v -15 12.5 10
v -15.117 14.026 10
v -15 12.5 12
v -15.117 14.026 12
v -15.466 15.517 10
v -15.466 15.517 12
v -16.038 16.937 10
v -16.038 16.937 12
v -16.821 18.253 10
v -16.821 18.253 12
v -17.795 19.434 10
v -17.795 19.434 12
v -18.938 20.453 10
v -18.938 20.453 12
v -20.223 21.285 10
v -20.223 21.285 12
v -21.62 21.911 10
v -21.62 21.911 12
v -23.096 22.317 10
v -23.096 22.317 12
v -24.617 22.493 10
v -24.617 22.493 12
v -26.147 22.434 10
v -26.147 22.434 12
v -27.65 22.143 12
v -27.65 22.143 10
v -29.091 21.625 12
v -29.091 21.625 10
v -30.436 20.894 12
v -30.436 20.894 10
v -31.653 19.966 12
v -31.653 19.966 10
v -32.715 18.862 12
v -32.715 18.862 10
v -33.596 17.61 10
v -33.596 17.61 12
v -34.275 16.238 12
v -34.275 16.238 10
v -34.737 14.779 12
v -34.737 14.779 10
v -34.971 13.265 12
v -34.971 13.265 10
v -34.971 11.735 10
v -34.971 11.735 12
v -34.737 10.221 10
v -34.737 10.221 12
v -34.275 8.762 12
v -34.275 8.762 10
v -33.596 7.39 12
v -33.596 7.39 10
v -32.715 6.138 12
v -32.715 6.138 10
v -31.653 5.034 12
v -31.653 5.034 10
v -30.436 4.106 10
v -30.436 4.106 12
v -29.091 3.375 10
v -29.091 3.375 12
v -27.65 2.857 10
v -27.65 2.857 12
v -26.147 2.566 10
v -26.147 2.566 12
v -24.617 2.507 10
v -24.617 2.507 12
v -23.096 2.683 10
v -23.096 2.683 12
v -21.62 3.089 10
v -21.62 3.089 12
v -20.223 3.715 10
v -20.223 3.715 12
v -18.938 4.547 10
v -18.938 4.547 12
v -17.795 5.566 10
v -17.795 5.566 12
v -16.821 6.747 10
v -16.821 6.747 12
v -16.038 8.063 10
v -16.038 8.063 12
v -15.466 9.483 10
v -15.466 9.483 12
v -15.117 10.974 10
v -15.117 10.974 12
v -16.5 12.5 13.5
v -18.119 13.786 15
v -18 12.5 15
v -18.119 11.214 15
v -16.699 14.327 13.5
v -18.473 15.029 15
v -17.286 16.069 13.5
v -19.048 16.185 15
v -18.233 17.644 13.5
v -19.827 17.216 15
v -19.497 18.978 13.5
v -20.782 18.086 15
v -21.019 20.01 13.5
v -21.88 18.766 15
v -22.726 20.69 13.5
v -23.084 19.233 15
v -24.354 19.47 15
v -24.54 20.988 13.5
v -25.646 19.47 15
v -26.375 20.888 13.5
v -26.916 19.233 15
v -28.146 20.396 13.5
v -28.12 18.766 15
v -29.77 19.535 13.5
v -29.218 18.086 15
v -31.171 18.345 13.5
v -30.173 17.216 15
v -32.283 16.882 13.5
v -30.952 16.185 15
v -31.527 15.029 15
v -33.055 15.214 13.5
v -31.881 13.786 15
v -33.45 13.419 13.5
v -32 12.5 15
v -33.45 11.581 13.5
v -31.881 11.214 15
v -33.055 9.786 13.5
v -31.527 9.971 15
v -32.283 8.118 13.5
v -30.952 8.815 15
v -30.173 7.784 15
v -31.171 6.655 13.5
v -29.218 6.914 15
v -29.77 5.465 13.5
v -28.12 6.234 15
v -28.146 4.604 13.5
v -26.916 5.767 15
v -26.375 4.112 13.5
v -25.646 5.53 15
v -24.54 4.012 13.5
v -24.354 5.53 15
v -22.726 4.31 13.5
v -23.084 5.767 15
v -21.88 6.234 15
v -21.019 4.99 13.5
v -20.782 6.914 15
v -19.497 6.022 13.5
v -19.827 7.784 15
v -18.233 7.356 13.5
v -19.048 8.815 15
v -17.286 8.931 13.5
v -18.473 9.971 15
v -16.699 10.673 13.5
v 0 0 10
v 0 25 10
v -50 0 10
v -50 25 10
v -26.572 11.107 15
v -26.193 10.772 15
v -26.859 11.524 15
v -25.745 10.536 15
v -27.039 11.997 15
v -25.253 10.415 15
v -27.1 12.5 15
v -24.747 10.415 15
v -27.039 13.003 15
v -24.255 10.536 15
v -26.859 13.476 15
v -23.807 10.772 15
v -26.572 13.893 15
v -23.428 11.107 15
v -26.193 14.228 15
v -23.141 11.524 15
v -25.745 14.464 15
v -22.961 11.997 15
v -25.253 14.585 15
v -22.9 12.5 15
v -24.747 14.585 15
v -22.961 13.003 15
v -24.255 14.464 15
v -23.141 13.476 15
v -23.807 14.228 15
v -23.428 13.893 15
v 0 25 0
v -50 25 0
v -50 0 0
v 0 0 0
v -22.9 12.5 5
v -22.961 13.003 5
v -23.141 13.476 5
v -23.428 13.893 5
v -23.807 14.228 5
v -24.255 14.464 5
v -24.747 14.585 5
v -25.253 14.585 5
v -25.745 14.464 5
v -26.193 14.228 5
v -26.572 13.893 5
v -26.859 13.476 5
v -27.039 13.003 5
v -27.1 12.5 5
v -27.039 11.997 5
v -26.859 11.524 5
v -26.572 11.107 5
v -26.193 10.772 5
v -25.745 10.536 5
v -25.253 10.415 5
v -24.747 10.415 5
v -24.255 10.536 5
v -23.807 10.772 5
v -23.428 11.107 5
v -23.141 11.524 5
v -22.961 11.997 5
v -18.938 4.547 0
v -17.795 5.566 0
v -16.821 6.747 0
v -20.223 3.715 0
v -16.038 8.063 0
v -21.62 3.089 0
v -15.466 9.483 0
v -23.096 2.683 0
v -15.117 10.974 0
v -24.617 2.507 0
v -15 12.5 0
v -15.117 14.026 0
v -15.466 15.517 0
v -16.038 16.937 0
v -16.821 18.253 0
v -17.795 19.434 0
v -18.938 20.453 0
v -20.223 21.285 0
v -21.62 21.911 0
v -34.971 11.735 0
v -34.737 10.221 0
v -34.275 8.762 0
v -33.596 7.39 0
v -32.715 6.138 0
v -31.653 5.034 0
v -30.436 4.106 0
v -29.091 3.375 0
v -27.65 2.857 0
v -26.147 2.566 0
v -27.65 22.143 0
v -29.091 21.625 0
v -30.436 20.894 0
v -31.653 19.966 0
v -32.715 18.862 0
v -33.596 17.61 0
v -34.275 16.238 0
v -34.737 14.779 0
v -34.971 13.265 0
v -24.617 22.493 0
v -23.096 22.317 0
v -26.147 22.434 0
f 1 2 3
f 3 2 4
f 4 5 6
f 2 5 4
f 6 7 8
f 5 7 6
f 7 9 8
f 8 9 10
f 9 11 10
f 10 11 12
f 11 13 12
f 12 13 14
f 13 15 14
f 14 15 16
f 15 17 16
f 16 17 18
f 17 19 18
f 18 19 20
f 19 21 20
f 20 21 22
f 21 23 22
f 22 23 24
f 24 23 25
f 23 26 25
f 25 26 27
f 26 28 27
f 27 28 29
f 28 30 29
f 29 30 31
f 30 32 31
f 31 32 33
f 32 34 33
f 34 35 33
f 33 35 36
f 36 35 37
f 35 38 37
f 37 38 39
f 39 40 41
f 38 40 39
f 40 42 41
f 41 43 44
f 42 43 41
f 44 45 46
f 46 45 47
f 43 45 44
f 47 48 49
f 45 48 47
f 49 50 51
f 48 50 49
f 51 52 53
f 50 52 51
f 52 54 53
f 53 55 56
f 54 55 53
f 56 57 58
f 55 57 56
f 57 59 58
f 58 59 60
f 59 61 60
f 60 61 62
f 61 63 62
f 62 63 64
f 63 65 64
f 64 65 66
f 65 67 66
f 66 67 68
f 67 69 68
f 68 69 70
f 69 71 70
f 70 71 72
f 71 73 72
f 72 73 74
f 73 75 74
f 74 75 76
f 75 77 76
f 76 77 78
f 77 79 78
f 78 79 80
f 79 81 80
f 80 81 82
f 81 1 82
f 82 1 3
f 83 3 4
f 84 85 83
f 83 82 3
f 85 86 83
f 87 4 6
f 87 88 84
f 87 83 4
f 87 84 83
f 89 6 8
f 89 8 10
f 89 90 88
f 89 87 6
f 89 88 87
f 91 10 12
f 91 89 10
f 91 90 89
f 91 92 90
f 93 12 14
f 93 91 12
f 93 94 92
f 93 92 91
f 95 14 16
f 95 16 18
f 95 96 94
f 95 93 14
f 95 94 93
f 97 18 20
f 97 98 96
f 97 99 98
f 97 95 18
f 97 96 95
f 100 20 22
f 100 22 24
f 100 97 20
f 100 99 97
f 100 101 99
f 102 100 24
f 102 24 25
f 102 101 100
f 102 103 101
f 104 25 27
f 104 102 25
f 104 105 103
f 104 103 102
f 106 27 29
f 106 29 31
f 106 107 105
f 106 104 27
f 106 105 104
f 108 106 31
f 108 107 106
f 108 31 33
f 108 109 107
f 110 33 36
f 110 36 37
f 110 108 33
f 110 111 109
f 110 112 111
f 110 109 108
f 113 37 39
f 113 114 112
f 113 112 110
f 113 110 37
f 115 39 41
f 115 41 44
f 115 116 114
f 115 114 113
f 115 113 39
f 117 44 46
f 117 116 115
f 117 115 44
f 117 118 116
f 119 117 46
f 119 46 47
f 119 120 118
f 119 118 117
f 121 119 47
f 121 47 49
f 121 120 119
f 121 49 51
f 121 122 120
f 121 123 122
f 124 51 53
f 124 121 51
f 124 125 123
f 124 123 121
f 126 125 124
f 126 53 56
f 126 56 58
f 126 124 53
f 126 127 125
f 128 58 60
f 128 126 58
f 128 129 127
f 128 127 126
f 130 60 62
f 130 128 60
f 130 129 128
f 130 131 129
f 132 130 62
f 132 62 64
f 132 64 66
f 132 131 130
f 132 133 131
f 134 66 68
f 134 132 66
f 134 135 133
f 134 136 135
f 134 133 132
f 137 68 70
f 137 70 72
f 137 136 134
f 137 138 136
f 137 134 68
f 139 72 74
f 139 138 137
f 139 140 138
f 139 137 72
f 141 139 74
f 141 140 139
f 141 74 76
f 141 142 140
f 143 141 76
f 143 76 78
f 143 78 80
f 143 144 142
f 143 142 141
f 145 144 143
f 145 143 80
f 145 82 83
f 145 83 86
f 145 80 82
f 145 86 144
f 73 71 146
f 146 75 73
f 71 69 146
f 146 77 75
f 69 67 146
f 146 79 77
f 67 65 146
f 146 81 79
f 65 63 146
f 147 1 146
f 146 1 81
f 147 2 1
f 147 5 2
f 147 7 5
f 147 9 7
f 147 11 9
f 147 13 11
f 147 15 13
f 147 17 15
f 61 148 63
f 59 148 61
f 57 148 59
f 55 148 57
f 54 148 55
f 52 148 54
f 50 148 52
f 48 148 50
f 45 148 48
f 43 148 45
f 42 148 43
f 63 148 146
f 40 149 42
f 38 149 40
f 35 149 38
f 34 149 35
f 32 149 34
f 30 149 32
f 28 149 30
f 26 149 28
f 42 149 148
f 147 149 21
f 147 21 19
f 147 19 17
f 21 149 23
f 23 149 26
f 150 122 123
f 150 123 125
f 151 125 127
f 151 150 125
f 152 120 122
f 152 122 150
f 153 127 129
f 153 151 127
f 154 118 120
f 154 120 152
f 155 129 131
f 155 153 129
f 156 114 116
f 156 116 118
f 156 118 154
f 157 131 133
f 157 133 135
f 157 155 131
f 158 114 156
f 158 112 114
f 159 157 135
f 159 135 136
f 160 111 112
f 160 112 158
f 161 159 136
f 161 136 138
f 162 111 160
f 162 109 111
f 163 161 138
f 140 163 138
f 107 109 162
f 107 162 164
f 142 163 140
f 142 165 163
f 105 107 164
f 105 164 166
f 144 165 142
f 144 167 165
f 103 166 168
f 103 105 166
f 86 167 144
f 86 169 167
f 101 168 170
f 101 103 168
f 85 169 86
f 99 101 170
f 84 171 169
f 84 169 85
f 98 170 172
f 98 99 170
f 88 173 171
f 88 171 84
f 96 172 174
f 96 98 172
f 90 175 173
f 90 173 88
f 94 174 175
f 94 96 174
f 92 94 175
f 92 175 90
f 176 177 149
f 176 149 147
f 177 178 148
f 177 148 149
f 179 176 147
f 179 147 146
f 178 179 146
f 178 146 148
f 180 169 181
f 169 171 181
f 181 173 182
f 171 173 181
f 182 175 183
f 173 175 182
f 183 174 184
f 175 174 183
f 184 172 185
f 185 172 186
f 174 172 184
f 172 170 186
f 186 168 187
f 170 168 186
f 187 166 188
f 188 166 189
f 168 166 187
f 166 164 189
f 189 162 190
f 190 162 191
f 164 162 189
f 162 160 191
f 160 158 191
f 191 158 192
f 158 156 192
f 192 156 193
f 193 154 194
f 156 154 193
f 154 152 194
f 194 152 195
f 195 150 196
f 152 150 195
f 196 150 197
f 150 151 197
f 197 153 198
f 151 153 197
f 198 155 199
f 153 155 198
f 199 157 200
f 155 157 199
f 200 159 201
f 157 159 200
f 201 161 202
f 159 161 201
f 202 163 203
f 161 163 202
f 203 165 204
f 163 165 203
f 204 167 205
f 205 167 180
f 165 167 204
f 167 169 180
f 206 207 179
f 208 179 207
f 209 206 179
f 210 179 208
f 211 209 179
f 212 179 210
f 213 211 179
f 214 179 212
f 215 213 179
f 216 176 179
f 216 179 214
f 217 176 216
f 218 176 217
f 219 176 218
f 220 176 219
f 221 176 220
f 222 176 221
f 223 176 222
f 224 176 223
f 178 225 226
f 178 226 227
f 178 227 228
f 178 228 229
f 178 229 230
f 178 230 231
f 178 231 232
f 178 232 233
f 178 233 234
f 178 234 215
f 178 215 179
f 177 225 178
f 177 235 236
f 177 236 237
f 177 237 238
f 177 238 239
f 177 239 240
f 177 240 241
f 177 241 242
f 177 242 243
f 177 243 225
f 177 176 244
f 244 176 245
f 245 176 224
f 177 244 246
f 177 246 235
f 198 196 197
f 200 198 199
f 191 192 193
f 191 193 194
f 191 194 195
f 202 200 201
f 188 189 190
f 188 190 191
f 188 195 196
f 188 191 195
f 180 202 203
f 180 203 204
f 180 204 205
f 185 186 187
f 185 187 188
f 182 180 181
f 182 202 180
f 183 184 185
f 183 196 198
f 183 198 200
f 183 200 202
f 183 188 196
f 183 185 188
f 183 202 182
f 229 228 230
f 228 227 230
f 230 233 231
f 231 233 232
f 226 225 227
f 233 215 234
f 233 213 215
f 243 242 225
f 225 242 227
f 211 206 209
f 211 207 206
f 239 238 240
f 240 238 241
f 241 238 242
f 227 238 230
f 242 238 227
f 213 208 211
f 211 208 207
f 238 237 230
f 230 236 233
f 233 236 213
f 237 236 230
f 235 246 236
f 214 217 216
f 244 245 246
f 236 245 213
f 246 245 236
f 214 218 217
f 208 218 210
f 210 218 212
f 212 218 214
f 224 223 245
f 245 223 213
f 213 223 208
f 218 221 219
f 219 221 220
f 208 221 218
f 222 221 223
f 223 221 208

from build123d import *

# Parameters (mm, degrees)
SKETCH_W      = 50
SKETCH_H      = 25
PAD_DEPTH     = 10
SKETCH001_R   = 10
PAD001_DEPTH  = 15
SKETCH002_R   = 2.1
POCKET_DEPTH  = 10
CHAMFER_SIZE2 = 3
CHAMFER_SIZE  = 3


with BuildPart() as part:
    # Sketch → Pad (new body)
    with BuildSketch(Plane.XY):
        with Locations((-25, 12.5)):
            Rectangle(SKETCH_W, SKETCH_H)
    extrude(amount=PAD_DEPTH)

    # Sketch001 → Pad001 (join)
    with BuildSketch(Plane.XY):
        with Locations((-25, 12.5)):
            Circle(SKETCH001_R)
    extrude(amount=PAD001_DEPTH)

    # Sketch002 (on Face9 of Pad001) → Pocket (cut)
    with BuildSketch(Plane.XY.offset(15)):
        with Locations((-25, 12.5)):
            Circle(SKETCH002_R)
    extrude(amount=-POCKET_DEPTH, mode=Mode.SUBTRACT)

    # Chamfer
    chamfer_edges = [part.edges().sort_by_distance(p)[0] for p in [
        (-35, 12.5, 15),
    ]]
    chamfer_side = part.faces().sort_by_distance((-35, 12.5, 12.5))[0]
    chamfer(chamfer_edges, length=CHAMFER_SIZE, length2=CHAMFER_SIZE2, reference=chamfer_side)


solid = part.part
